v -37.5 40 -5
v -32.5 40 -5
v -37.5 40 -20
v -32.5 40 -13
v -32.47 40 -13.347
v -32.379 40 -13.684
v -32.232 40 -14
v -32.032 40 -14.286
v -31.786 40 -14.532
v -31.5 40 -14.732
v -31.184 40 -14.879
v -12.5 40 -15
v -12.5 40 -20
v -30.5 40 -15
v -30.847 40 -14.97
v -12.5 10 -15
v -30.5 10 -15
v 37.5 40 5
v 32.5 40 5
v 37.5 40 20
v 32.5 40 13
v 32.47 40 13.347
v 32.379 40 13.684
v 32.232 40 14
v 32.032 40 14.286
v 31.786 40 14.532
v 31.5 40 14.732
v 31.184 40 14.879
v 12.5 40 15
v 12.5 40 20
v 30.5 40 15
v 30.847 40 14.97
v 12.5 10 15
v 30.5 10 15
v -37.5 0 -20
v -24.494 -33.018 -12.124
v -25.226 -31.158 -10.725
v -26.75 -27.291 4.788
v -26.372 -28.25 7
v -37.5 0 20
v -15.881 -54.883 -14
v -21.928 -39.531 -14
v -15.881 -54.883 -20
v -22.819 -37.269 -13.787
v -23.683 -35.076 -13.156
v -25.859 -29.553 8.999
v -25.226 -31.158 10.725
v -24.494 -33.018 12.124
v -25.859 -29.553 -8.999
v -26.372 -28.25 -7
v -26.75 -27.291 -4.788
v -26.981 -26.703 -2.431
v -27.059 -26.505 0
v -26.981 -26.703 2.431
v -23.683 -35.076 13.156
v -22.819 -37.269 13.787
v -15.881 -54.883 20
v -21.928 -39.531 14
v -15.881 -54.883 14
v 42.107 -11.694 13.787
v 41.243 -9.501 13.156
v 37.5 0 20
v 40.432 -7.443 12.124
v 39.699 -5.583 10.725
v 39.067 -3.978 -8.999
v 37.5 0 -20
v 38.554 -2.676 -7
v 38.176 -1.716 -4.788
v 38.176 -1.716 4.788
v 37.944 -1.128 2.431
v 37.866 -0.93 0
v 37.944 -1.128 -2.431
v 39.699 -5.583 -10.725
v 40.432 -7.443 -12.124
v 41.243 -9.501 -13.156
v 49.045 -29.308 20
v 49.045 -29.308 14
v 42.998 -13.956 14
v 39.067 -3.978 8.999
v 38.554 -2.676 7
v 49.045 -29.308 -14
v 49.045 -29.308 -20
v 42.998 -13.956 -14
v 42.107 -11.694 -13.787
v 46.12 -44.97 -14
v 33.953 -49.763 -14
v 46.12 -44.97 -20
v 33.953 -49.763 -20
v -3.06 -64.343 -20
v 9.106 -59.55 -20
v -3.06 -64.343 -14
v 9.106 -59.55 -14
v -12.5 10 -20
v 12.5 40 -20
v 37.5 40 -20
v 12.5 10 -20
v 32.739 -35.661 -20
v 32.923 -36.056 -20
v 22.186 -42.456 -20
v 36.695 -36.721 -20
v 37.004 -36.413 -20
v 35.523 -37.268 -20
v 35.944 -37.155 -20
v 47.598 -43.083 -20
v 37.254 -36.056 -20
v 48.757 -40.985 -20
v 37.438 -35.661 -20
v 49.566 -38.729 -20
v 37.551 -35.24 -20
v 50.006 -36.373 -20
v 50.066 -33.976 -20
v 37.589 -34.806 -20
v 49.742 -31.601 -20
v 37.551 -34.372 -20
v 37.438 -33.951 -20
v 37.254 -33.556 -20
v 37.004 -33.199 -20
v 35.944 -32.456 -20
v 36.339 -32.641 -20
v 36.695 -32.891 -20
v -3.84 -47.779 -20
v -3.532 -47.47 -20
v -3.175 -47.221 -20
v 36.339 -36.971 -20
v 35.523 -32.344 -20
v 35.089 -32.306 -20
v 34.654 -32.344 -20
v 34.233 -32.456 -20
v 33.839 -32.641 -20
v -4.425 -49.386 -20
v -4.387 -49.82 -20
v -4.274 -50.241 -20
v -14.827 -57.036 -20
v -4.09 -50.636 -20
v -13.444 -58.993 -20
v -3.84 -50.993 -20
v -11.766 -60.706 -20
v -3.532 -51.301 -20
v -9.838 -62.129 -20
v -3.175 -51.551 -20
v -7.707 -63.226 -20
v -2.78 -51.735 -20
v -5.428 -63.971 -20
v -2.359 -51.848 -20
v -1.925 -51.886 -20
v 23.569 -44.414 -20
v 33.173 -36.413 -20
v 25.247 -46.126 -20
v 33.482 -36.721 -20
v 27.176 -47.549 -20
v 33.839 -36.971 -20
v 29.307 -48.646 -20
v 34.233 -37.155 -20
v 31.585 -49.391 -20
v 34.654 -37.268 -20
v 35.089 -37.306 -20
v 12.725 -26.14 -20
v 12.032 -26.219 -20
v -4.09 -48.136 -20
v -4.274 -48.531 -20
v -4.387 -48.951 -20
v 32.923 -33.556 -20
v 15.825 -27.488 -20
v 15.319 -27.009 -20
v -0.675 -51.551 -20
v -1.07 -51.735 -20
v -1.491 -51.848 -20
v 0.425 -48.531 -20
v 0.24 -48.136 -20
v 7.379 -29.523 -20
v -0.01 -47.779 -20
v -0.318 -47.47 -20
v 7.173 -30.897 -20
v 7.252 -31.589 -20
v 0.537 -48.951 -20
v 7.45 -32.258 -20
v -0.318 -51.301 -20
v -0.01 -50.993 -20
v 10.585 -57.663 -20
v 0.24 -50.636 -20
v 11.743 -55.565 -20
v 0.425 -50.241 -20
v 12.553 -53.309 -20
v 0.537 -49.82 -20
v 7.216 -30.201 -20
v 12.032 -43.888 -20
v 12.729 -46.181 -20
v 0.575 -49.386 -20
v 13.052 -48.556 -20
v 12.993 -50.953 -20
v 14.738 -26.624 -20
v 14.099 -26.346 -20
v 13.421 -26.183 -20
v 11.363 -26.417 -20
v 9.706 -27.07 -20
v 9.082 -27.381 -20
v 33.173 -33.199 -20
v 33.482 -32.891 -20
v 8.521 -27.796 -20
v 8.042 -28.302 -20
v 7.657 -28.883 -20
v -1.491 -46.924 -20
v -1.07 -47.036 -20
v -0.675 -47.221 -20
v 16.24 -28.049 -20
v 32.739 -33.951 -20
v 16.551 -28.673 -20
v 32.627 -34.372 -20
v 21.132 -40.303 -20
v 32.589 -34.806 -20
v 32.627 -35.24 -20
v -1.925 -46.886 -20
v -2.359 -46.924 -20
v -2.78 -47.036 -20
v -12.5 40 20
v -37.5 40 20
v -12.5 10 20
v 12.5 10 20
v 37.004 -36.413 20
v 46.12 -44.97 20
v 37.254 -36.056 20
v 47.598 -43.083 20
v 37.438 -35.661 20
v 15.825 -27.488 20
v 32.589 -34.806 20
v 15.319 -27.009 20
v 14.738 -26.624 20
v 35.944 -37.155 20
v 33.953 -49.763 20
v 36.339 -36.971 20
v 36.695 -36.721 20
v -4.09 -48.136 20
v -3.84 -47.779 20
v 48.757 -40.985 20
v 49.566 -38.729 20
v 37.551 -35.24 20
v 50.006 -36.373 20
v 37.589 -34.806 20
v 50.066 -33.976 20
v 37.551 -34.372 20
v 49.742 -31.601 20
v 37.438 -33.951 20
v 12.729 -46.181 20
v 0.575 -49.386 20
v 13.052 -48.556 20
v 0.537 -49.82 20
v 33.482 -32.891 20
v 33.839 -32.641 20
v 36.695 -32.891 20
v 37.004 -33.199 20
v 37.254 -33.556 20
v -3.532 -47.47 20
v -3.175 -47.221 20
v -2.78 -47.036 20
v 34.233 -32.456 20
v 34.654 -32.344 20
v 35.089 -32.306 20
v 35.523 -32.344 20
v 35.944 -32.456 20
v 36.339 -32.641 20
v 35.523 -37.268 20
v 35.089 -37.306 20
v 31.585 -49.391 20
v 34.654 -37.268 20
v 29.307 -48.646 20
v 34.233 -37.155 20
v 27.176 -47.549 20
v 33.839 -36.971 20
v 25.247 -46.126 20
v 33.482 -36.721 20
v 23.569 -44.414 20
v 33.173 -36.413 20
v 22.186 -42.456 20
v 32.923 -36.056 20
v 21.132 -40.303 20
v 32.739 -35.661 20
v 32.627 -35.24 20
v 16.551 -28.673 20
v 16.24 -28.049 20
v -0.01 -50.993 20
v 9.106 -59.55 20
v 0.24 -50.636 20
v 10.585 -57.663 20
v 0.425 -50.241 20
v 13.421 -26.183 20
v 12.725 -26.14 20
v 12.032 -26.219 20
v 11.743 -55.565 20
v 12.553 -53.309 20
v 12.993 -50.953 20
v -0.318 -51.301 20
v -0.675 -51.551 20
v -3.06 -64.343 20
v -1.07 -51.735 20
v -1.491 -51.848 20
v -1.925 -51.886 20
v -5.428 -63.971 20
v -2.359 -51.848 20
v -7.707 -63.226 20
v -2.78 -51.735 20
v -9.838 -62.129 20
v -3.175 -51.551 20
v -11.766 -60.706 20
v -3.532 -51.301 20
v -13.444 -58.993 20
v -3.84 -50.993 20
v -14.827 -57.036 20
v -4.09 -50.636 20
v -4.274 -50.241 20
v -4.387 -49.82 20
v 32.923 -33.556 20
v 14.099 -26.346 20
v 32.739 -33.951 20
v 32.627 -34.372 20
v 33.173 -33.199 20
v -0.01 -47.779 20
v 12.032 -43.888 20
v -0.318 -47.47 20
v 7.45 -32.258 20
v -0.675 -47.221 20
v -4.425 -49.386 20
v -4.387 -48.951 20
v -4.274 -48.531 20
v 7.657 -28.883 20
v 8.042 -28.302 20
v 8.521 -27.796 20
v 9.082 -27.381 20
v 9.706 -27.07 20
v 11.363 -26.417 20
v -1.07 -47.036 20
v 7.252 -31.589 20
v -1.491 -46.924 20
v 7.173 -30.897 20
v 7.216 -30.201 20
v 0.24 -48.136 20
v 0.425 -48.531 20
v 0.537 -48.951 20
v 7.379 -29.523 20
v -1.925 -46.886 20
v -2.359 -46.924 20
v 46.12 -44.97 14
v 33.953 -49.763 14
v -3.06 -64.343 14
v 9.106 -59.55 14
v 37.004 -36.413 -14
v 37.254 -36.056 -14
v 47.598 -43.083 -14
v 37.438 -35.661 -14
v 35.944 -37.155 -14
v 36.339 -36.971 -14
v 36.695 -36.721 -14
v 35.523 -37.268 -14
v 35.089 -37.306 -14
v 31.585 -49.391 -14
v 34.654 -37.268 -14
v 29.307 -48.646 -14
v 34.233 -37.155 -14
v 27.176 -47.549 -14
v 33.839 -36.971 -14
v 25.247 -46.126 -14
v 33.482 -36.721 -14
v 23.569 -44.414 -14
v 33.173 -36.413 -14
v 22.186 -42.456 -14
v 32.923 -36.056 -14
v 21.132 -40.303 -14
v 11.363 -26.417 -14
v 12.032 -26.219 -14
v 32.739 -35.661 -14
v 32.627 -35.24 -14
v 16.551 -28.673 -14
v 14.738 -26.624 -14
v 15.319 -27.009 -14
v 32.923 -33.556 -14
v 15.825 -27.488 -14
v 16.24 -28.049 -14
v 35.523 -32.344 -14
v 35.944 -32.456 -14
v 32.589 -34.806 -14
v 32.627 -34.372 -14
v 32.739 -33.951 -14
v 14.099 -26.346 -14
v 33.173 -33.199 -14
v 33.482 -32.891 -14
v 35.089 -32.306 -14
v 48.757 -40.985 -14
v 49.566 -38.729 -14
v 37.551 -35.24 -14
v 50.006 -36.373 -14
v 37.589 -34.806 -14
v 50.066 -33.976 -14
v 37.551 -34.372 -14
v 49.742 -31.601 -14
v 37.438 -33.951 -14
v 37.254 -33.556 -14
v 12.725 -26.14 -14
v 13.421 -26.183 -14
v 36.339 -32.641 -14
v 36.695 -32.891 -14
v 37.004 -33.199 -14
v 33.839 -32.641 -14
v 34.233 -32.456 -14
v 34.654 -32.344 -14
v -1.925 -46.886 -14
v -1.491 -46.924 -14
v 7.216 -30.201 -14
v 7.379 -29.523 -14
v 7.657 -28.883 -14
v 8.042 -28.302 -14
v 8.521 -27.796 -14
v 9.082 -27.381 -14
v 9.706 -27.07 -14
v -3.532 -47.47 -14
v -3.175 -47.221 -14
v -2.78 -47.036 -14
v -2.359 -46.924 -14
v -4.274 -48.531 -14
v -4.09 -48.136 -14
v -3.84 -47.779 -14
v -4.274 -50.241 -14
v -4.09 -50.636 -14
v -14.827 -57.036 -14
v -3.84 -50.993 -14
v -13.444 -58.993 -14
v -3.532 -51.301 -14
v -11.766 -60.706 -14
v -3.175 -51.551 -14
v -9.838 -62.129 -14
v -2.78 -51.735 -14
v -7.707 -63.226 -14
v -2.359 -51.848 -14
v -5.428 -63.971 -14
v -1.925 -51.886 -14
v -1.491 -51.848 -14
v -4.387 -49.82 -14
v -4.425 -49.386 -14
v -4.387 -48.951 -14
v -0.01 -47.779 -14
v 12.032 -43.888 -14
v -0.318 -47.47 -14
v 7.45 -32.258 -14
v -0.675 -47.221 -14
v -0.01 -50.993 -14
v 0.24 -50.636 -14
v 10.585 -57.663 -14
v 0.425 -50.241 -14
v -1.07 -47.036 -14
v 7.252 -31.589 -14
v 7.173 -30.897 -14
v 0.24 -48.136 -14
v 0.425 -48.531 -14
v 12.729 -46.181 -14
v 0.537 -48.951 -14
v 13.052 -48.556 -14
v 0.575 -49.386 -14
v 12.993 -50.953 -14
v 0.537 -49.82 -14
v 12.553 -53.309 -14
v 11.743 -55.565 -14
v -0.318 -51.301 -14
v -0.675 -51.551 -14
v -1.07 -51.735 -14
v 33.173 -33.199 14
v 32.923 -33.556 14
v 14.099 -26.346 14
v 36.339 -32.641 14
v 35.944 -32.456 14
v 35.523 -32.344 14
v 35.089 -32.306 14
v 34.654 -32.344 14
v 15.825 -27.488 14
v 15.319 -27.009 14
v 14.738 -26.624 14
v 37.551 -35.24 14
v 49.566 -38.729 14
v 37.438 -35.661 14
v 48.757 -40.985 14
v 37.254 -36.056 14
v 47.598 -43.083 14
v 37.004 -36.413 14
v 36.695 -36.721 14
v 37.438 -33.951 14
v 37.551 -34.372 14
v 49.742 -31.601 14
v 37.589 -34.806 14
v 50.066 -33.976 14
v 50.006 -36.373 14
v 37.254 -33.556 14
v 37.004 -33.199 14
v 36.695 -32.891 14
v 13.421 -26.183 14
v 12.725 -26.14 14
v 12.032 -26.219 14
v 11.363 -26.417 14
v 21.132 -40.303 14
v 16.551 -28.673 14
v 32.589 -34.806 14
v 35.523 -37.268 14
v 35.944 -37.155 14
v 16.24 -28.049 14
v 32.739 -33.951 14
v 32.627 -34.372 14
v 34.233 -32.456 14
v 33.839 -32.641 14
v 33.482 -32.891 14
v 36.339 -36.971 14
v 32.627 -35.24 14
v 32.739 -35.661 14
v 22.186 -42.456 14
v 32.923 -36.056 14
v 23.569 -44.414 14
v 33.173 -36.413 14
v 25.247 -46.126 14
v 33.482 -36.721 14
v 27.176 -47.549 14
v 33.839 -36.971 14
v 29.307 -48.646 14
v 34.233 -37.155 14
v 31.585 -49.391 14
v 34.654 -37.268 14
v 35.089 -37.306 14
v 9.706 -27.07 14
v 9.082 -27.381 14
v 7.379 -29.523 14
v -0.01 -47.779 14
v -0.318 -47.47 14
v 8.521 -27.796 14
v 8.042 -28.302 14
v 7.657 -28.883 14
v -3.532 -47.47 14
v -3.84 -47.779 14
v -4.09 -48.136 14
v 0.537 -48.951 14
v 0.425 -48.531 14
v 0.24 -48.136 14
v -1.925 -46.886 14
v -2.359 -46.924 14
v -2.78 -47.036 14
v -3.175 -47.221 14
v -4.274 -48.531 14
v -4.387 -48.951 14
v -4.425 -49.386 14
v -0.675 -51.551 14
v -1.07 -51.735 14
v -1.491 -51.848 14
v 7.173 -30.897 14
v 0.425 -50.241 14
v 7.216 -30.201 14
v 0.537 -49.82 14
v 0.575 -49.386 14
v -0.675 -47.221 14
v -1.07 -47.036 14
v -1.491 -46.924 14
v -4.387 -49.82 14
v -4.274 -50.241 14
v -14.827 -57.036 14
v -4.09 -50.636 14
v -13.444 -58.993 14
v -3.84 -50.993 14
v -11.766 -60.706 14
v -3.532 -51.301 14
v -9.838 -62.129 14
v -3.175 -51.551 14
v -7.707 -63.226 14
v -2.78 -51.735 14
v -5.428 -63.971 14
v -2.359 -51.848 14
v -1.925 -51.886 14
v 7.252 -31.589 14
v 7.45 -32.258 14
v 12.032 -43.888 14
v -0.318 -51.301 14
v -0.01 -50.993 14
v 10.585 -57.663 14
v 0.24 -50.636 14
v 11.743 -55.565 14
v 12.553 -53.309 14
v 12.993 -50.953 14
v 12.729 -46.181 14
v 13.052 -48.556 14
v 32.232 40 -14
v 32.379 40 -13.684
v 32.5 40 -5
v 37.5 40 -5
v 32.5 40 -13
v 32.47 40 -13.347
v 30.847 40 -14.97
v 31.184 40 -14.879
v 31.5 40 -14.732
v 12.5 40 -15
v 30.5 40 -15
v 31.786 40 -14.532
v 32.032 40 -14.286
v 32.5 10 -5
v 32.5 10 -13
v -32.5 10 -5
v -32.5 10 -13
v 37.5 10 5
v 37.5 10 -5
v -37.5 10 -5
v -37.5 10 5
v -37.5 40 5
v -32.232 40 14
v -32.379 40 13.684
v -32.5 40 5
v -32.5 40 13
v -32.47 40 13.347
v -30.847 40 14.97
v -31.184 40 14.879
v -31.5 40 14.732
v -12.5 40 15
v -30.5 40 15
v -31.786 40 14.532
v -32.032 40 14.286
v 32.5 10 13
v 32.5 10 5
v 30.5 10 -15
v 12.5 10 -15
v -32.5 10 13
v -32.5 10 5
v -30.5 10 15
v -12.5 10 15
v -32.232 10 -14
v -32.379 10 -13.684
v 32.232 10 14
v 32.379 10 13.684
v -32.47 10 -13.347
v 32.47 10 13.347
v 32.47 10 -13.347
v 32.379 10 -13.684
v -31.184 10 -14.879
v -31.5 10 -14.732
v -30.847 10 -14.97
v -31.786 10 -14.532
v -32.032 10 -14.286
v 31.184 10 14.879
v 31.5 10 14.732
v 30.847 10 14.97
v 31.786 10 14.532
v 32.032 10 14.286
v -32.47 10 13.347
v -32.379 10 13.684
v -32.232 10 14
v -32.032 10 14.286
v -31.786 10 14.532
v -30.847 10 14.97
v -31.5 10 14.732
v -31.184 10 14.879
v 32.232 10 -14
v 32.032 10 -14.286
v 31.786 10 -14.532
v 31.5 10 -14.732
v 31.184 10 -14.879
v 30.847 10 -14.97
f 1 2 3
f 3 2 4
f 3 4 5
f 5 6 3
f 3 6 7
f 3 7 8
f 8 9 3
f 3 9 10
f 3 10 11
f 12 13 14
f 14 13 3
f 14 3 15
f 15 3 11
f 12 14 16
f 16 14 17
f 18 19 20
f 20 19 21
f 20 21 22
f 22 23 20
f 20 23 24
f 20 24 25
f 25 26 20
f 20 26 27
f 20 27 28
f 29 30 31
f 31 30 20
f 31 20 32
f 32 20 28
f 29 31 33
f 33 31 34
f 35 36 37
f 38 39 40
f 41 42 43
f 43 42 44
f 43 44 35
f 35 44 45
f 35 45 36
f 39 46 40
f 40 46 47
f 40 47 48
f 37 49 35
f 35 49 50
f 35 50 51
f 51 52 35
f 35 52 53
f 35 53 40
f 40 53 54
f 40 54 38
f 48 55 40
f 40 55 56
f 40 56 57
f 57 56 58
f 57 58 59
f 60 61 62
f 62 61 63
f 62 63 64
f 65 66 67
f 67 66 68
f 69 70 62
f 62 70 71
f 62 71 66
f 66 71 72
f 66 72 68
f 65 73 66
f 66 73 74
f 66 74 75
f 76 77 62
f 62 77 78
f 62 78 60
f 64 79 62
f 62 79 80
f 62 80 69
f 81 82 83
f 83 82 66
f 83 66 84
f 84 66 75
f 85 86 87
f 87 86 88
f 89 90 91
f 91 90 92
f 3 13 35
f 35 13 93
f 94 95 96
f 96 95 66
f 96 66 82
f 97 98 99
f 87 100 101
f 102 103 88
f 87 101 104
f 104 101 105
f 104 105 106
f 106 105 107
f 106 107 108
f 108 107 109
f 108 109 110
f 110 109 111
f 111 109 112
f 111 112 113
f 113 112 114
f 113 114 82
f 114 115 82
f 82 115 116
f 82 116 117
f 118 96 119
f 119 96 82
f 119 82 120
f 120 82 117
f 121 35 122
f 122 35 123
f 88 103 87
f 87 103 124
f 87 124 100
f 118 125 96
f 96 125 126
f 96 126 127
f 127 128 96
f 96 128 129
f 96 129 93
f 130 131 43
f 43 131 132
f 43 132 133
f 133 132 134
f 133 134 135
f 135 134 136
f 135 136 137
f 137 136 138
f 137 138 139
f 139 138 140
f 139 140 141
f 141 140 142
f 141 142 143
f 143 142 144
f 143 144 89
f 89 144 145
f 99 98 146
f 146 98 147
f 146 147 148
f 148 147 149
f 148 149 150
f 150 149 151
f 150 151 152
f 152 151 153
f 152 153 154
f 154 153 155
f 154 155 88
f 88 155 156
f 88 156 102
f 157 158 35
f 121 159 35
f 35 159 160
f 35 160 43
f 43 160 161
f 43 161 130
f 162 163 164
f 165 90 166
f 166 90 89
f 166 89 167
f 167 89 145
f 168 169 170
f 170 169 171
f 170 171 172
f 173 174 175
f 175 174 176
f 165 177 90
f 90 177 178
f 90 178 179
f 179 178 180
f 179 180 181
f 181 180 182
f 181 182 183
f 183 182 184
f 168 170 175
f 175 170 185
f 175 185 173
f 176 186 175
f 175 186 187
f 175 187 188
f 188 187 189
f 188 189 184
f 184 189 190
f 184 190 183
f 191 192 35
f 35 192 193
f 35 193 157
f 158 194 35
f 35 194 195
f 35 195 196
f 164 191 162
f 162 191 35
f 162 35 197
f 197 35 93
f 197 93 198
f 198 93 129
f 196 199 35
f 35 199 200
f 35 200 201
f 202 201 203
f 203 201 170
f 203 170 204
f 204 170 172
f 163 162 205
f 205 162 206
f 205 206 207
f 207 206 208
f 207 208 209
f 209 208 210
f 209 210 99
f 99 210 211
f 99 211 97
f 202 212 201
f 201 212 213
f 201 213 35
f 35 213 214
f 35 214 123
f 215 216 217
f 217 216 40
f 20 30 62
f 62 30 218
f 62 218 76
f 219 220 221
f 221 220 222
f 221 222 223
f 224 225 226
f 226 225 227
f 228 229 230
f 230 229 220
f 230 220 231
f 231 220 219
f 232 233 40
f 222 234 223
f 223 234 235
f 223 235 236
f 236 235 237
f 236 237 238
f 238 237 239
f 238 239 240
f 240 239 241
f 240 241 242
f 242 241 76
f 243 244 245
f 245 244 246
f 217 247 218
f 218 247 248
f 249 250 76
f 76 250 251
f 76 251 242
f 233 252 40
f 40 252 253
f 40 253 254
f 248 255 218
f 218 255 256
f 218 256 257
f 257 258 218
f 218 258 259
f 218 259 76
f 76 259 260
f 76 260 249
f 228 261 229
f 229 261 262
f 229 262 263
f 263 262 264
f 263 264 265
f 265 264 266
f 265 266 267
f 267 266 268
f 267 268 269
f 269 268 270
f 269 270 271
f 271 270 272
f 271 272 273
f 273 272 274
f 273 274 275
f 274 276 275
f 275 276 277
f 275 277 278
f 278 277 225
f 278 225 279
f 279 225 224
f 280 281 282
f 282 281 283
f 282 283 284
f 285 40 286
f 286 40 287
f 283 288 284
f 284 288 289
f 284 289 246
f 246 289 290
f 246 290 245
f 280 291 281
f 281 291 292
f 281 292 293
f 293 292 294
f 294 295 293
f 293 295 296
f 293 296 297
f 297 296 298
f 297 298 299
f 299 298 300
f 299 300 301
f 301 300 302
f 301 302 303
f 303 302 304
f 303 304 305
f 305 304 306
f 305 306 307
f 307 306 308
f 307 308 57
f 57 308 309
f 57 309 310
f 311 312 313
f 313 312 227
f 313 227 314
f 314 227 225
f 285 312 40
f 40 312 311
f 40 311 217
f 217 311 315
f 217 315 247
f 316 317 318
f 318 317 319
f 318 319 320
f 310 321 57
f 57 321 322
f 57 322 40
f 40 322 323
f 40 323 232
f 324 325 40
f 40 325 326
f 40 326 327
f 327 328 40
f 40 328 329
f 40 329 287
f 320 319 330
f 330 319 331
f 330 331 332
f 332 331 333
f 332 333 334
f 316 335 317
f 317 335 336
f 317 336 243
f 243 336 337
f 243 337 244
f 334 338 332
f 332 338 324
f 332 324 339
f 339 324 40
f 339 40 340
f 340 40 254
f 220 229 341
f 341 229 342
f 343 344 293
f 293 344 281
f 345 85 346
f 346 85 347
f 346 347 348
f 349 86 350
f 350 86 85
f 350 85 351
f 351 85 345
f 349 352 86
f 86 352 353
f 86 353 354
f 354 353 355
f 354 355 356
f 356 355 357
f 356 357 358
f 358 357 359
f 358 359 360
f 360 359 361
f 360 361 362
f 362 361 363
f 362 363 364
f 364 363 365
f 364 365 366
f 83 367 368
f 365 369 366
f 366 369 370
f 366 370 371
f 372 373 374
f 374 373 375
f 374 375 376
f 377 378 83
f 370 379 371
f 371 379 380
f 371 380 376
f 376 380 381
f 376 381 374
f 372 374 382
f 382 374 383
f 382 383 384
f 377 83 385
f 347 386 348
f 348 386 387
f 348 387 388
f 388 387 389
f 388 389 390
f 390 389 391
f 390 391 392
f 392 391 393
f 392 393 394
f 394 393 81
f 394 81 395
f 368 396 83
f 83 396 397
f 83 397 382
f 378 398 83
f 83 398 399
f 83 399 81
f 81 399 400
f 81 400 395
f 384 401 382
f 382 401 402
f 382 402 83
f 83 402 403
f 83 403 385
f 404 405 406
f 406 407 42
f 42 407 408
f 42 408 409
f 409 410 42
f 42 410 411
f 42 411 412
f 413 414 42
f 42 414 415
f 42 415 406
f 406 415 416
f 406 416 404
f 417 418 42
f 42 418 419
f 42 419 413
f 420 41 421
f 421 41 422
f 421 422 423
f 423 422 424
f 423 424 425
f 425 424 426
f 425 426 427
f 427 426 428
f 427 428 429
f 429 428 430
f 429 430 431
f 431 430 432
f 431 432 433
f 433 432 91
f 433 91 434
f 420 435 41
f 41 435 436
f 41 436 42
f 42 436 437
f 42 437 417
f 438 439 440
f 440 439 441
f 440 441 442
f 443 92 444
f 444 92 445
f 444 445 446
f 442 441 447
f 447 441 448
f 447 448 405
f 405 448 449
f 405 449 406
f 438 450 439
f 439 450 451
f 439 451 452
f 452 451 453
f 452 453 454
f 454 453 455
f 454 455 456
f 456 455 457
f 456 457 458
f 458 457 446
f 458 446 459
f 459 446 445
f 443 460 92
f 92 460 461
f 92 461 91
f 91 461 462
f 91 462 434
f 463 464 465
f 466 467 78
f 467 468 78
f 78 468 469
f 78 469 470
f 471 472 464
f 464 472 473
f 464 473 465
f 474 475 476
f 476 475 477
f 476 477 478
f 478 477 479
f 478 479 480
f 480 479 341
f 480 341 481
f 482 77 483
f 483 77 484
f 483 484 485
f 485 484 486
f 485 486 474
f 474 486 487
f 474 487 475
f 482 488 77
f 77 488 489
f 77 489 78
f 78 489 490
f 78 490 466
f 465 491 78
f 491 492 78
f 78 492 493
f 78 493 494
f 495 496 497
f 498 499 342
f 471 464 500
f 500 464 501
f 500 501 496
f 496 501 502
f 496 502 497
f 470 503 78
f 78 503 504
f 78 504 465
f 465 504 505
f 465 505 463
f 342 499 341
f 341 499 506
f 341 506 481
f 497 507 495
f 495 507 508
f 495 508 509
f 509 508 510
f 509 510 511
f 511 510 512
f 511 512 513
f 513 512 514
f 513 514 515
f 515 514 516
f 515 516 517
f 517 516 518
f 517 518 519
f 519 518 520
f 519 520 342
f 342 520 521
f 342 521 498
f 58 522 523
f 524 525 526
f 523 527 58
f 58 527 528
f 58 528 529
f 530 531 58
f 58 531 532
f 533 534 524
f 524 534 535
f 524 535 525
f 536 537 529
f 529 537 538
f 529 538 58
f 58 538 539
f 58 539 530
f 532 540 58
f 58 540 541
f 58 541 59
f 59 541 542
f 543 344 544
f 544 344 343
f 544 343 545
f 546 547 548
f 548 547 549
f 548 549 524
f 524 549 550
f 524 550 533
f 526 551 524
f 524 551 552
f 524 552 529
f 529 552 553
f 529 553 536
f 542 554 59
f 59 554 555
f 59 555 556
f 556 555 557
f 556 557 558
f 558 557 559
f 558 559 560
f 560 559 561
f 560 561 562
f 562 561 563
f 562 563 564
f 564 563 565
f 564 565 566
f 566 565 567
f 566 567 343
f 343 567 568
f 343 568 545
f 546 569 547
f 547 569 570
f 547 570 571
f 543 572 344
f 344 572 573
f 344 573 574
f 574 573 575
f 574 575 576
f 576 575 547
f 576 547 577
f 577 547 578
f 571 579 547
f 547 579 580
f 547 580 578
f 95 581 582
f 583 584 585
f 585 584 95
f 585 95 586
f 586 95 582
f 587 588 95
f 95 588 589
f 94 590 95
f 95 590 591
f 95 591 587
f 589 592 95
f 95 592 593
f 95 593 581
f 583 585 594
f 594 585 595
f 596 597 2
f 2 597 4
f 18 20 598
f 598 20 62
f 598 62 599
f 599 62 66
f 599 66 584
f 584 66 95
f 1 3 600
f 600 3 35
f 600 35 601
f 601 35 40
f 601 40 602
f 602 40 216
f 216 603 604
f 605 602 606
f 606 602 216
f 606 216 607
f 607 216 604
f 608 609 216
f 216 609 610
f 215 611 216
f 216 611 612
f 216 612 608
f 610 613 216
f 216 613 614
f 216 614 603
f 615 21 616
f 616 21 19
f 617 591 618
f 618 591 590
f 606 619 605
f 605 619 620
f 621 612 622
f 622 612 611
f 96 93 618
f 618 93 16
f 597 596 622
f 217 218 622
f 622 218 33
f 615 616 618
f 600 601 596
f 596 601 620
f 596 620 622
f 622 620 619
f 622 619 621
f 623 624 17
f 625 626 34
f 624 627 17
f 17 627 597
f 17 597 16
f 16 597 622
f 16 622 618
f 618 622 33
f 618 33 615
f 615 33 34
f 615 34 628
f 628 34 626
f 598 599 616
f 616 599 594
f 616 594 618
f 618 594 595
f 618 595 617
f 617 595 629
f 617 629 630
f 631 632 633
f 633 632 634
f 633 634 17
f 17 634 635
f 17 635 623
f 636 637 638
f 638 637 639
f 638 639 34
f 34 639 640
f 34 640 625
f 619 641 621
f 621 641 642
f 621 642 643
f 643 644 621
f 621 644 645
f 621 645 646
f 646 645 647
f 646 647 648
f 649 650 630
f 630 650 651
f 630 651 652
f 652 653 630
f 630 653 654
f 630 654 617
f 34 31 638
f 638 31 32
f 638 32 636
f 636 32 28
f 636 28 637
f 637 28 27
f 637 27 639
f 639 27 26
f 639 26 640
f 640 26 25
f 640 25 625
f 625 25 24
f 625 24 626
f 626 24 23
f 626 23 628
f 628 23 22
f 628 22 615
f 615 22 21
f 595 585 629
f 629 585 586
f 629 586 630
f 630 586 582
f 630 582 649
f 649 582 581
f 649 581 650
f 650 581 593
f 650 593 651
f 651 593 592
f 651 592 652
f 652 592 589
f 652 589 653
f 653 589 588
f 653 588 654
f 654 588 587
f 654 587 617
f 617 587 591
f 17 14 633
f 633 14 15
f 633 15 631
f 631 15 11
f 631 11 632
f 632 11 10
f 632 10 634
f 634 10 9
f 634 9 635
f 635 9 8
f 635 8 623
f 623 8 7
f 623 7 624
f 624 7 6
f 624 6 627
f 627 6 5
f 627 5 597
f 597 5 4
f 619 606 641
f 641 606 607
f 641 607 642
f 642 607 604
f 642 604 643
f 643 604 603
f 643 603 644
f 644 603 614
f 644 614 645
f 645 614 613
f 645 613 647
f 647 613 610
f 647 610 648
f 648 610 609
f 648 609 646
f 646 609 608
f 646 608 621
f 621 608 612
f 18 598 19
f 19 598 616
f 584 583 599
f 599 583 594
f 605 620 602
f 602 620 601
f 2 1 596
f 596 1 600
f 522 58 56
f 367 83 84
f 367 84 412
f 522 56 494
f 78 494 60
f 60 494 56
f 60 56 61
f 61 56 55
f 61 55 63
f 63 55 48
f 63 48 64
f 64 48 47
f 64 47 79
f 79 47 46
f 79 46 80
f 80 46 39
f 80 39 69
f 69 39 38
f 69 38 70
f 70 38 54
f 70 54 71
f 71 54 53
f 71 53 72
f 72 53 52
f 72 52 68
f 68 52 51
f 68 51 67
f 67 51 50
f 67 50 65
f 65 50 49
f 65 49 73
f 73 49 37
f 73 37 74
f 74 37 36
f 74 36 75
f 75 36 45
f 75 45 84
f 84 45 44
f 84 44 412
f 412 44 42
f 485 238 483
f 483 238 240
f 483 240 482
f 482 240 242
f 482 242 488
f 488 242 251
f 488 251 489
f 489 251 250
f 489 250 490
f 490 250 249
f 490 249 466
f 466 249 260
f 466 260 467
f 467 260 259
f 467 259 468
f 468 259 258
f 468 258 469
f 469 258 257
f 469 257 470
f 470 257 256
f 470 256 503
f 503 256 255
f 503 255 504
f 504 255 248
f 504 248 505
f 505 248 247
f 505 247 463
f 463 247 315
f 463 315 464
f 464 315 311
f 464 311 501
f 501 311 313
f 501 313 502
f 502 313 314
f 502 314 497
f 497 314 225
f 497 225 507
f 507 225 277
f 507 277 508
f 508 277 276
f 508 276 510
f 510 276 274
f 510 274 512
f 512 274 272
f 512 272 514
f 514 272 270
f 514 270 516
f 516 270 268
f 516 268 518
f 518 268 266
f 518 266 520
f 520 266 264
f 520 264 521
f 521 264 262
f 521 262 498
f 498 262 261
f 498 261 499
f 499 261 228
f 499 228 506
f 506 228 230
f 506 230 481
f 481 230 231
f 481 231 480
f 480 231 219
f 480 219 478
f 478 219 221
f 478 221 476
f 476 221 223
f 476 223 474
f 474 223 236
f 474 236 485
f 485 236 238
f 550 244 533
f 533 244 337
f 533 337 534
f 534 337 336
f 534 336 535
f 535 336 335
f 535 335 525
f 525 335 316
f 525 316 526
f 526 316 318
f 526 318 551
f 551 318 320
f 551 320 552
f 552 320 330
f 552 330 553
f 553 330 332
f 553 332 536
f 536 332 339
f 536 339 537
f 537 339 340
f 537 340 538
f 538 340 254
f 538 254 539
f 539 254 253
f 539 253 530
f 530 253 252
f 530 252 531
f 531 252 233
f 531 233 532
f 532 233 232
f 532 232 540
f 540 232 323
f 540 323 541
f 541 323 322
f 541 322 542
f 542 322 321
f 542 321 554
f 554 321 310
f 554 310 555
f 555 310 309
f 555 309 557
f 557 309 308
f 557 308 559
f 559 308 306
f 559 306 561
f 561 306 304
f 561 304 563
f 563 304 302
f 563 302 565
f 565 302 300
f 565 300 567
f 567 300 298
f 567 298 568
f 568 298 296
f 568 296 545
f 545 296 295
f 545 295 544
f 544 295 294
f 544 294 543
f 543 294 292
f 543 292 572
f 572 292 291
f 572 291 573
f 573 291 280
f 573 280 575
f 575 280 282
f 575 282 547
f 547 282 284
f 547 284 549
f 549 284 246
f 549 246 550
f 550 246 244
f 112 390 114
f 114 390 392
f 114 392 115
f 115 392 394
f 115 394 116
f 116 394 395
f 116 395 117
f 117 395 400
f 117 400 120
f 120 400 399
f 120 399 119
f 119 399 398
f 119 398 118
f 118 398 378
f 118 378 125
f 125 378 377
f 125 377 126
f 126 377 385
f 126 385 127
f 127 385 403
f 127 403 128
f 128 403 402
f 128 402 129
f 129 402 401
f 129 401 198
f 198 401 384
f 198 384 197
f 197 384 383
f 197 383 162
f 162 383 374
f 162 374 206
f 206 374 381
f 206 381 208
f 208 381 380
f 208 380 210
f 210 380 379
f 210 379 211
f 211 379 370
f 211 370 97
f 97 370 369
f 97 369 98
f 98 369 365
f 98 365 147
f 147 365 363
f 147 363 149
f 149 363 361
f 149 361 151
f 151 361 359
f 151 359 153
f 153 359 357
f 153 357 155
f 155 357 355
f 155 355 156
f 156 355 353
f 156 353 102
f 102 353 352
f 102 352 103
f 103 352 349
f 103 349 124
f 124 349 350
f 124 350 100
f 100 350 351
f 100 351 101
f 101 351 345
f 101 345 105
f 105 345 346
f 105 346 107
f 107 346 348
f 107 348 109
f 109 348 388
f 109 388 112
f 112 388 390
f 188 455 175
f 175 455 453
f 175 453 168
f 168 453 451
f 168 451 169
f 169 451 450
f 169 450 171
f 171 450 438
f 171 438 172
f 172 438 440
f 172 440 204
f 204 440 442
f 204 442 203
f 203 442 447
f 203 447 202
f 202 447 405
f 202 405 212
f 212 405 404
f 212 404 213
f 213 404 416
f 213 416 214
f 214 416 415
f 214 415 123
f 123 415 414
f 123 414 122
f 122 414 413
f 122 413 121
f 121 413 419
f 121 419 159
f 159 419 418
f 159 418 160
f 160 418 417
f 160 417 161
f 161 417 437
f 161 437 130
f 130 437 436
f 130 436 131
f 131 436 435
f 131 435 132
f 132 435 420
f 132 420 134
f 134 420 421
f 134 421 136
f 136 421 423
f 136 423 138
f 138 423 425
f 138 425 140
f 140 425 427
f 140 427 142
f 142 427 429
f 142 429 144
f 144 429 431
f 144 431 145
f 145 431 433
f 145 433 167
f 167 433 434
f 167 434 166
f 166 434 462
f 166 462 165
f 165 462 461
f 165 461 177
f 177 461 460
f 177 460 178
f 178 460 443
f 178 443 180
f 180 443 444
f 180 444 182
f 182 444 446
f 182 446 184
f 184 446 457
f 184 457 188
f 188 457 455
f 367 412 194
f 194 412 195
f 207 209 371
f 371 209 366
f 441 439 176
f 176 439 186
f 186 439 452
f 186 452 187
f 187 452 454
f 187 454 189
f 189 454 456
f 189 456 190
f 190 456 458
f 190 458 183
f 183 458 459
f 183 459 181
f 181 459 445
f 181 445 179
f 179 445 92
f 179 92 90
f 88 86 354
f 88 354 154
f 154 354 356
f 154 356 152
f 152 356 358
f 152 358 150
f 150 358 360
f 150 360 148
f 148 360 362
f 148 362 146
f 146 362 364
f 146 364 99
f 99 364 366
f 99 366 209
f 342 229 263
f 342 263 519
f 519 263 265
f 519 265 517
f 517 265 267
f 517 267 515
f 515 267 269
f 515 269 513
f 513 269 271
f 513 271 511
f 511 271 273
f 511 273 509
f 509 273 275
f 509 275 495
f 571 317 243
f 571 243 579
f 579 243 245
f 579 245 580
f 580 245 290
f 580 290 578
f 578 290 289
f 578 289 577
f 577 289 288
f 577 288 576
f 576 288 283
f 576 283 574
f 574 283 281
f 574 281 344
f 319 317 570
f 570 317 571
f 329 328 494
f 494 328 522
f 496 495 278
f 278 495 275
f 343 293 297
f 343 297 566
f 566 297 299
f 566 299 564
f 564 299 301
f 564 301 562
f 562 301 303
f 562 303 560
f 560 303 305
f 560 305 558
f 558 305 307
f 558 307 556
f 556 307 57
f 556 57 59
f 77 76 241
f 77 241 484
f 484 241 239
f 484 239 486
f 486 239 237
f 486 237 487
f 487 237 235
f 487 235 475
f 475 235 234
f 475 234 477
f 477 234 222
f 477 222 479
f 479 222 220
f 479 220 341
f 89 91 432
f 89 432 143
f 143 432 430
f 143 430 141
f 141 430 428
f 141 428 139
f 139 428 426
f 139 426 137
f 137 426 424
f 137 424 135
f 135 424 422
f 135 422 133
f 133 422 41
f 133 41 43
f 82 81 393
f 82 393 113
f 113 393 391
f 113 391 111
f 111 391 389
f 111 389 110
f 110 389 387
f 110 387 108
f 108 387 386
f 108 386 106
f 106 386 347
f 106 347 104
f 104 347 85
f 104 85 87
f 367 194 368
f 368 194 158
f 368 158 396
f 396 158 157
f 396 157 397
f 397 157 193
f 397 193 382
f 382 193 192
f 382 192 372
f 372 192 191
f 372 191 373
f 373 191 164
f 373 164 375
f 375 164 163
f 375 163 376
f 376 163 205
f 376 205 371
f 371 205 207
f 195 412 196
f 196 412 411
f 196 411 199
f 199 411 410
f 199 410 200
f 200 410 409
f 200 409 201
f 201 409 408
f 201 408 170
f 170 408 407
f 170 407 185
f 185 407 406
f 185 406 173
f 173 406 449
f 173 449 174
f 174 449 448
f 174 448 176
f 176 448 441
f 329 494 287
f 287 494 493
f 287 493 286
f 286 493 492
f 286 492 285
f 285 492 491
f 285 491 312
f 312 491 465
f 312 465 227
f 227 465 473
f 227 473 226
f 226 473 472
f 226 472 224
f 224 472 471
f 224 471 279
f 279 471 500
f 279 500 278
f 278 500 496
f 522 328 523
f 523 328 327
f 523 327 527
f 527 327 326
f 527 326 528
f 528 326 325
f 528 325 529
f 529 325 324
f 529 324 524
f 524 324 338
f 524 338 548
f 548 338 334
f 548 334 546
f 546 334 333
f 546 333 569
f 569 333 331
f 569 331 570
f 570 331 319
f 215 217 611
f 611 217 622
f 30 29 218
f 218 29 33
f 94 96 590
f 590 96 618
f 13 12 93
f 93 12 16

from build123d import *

# Parameters (mm, degrees)
SKETCH_1_W               = 75
SKETCH_1_H               = 40
EXTRUDE_1_DEPTH          = 10
SKETCH_2_W               = 75
SKETCH_2_H               = 40
SKETCH_2_W_2             = 65
SKETCH_2_H_2             = 30
EXTRUDE_2_DEPTH          = 30
FILLET_2_R               = 2
SKETCH_3_W               = 5
SKETCH_3_H               = 5
CUT_EXTRUDE_1_DEPTH      = 30
EXTRUDE_3_REACH          = 72.682
SKETCH_4_W               = 40
SKETCH_4_H               = 69.781317598
SKETCH_5_W               = 69.781317598
SKETCH_5_H               = 40
EXTRUDE_4_DEPTH          = 45
CUT_EXTRUDE_2_DEPTH      = 109.313665007
CUT_EXTRUDE_3_DEPTH      = 93.843161337
CUT_EXTRUDE_3_DEPTH_BACK = 93.843161337
SKETCH_9_R               = 2.5
CUT_EXTRUDE_4_DEPTH      = 93.843161337
CUT_EXTRUDE_4_DEPTH_BACK = 93.843161337
FILLET_3_R               = 4
SKETCH_14_W              = 25
SKETCH_14_H              = 5
CUT_EXTRUDE_5_DEPTH      = 30


with BuildPart() as part:
    # 草图1 → 凸台-拉伸1 (new body)
    with BuildSketch(Plane(origin=(0, 0, 0), x_dir=(1, 0, 0), z_dir=(0, 1, 0))):
        Rectangle(SKETCH_1_W, SKETCH_1_H)
    extrude(amount=EXTRUDE_1_DEPTH)

    # 草图2 → 凸台-拉伸2 (add)
    with BuildSketch(Plane(origin=(0, 10, 0), x_dir=(1, 0, 0), z_dir=(0, 1, 0))):
        Rectangle(SKETCH_2_W, SKETCH_2_H)
        Rectangle(SKETCH_2_W_2, SKETCH_2_H_2, mode=Mode.SUBTRACT)
    extrude(amount=EXTRUDE_2_DEPTH)

    # 圆角2
    fillet_2_edges = [part.edges().sort_by_distance(p)[0] for p in [
        (32.5, 25, -15),
        (-32.5, 25, -15),
        (-32.5, 25, 15),
        (32.5, 25, 15),
    ]]
    fillet(fillet_2_edges, radius=FILLET_2_R)

    # 草图3 → 切除-拉伸1 (cut)
    with BuildSketch(Plane(origin=(0, 40, 0), x_dir=(1, 0, 0), z_dir=(0, 1, 0))):
        with Locations((-35, -2.5)):
            Rectangle(SKETCH_3_W, SKETCH_3_H)
        with Locations((-35, 2.5)):
            Rectangle(SKETCH_3_W, SKETCH_3_H)
        with Locations((35, -2.5)):
            Rectangle(SKETCH_3_W, SKETCH_3_H)
        with Locations((35, 2.5)):
            Rectangle(SKETCH_3_W, SKETCH_3_H)
    extrude(amount=-CUT_EXTRUDE_1_DEPTH, mode=Mode.SUBTRACT)

    # 凸台-拉伸3: up to this face of the body (flat: up to its plane)
    extrude_3_end = Plane(part.part.faces().sort_by_distance((0, 0, 0))[0])
    # 草图4 → 凸台-拉伸3 (add, up to the picked face)
    with BuildSketch(Plane(origin=(5.037118095, -12.787469251, 0), x_dir=(0, 0, -1), z_dir=(0.3665012267242981, -0.9304175679820242, 0)), mode=Mode.PRIVATE) as extrude_3_sk1:
        Rectangle(SKETCH_4_W, SKETCH_4_H)
    extrude_3_tool1 = split(extrude(extrude_3_sk1.sketch, amount=-EXTRUDE_3_REACH, mode=Mode.PRIVATE), bisect_by=extrude_3_end, keep=Keep.BOTH, mode=Mode.PRIVATE)
    add(extrude_3_tool1.solids().sort_by(Axis((5.037118, -12.787469, 0), (-0.3665012267242981, 0.9304175679820242, 0)))[0])

    # 草图5 → 凸台-拉伸4 (add)
    with BuildSketch(Plane(origin=(5.037118095, -12.787469251, 0), x_dir=(0.9304175679820242, 0.36650122672429813, 0), z_dir=(0.36650122672429813, -0.9304175679820244, 0))):
        Rectangle(SKETCH_5_W, SKETCH_5_H)
    extrude(amount=EXTRUDE_4_DEPTH)

    # 草图7 → 切除-拉伸2 (cut, through all)
    with BuildSketch(Plane(origin=(32.462881905, 12.787469251, 0), x_dir=(0, 0, -1), z_dir=(0.9304175679820242, 0.3665012267242982, 0))):
        with BuildLine():
            ThreePointArc((14, -28.743796002), (0, -14.743796002), (-14, -28.743796002))
            Line((-14, -28.743796002), (-14, -58.743796002))
            Line((-14, -58.743796002), (14, -58.743796002))
            Line((14, -58.743796002), (14, -28.743796002))
        make_face()
    extrude(amount=-CUT_EXTRUDE_2_DEPTH, mode=Mode.SUBTRACT)

    # 草图9 → 切除-拉伸3 (cut, two sides: drawn at the far end of the back side and taken through both)
    with BuildSketch(Plane.XY.offset(-14).offset(-CUT_EXTRUDE_3_DEPTH_BACK)):
        with Locations((-1.924711649, -49.385573493)):
            Circle(SKETCH_9_R)
        with Locations((35.088525122, -34.805671792)):
            Circle(SKETCH_9_R)
    extrude(amount=CUT_EXTRUDE_3_DEPTH + CUT_EXTRUDE_3_DEPTH_BACK, mode=Mode.SUBTRACT)

    # 草图11 → 切除-拉伸4 (cut, two sides: drawn at the far end of the back side and taken through both)
    with BuildSketch(Plane.XY.offset(-14).offset(-CUT_EXTRUDE_4_DEPTH_BACK)):
        with BuildLine():
            Line((5.98428163, -28.53616522), (12.031551871, -43.888055092))
            ThreePointArc((12.031551871, -43.888055092), (12.812044317, -46.587712953), (13.075288351, -49.385573493))
            ThreePointArc((13.075288351, -49.385573493), (12.047893904, -54.84142302), (9.106449143, -59.549897946))
            Line((9.106449143, -59.549897946), (33.952897452, -49.762621675))
            ThreePointArc((33.952897452, -49.762621675), (26.182824368, -46.875820676), (21.132261602, -40.303190193))
            Line((21.132261602, -40.303190193), (15.084991361, -24.951300321))
            Line((15.084991361, -24.951300321), (5.98428163, -28.53616522))
        make_face()
        with BuildLine():
            ThreePointArc((-3.06033932, -64.342523376), (-10.830412504, -61.455722303), (-15.880975261, -54.883091661))
            Line((-15.880975261, -54.883091661), (-10.933208608, -67.443729062))
            Line((-10.933208608, -67.443729062), (-3.06033932, -64.342523376))
        make_face()
        with BuildLine():
            Line((53.992555203, -41.868790559), (49.044788748, -29.308153662))
            ThreePointArc((49.044788748, -29.308153662), (49.825281115, -32.007811395), (50.088525122, -34.805671792))
            ThreePointArc((50.088525122, -34.805671792), (49.061130675, -40.261521319), (46.119685914, -44.969996245))
            Line((46.119685914, -44.969996245), (53.992555203, -41.868790559))
        make_face()
    extrude(amount=CUT_EXTRUDE_4_DEPTH + CUT_EXTRUDE_4_DEPTH_BACK, mode=Mode.SUBTRACT)

    # 圆角3
    fillet_3_edges = [part.edges().sort_by_distance(p)[0] for p in [
        (5.98428163, -28.53616522, 17),
        (5.98428163, -28.53616522, -17),
        (15.084991361, -24.951300321, 17),
        (15.084991361, -24.951300321, -17),
    ]]
    fillet(fillet_3_edges, radius=FILLET_3_R)

    # 草图14 → 切除-拉伸5 (cut)
    with BuildSketch(Plane(origin=(0, 40, 0), x_dir=(1, 0, 0), z_dir=(0, 1, 0))):
        with Locations((0, -17.5)):
            Rectangle(SKETCH_14_W, SKETCH_14_H)
    cut_extrude_5 = extrude(amount=-CUT_EXTRUDE_5_DEPTH, mode=Mode.SUBTRACT)

    # 镜向1: 切除-拉伸5 across plane
    add(cut_extrude_5.mirror(Plane.XY), mode=Mode.SUBTRACT)


solid = part.part
